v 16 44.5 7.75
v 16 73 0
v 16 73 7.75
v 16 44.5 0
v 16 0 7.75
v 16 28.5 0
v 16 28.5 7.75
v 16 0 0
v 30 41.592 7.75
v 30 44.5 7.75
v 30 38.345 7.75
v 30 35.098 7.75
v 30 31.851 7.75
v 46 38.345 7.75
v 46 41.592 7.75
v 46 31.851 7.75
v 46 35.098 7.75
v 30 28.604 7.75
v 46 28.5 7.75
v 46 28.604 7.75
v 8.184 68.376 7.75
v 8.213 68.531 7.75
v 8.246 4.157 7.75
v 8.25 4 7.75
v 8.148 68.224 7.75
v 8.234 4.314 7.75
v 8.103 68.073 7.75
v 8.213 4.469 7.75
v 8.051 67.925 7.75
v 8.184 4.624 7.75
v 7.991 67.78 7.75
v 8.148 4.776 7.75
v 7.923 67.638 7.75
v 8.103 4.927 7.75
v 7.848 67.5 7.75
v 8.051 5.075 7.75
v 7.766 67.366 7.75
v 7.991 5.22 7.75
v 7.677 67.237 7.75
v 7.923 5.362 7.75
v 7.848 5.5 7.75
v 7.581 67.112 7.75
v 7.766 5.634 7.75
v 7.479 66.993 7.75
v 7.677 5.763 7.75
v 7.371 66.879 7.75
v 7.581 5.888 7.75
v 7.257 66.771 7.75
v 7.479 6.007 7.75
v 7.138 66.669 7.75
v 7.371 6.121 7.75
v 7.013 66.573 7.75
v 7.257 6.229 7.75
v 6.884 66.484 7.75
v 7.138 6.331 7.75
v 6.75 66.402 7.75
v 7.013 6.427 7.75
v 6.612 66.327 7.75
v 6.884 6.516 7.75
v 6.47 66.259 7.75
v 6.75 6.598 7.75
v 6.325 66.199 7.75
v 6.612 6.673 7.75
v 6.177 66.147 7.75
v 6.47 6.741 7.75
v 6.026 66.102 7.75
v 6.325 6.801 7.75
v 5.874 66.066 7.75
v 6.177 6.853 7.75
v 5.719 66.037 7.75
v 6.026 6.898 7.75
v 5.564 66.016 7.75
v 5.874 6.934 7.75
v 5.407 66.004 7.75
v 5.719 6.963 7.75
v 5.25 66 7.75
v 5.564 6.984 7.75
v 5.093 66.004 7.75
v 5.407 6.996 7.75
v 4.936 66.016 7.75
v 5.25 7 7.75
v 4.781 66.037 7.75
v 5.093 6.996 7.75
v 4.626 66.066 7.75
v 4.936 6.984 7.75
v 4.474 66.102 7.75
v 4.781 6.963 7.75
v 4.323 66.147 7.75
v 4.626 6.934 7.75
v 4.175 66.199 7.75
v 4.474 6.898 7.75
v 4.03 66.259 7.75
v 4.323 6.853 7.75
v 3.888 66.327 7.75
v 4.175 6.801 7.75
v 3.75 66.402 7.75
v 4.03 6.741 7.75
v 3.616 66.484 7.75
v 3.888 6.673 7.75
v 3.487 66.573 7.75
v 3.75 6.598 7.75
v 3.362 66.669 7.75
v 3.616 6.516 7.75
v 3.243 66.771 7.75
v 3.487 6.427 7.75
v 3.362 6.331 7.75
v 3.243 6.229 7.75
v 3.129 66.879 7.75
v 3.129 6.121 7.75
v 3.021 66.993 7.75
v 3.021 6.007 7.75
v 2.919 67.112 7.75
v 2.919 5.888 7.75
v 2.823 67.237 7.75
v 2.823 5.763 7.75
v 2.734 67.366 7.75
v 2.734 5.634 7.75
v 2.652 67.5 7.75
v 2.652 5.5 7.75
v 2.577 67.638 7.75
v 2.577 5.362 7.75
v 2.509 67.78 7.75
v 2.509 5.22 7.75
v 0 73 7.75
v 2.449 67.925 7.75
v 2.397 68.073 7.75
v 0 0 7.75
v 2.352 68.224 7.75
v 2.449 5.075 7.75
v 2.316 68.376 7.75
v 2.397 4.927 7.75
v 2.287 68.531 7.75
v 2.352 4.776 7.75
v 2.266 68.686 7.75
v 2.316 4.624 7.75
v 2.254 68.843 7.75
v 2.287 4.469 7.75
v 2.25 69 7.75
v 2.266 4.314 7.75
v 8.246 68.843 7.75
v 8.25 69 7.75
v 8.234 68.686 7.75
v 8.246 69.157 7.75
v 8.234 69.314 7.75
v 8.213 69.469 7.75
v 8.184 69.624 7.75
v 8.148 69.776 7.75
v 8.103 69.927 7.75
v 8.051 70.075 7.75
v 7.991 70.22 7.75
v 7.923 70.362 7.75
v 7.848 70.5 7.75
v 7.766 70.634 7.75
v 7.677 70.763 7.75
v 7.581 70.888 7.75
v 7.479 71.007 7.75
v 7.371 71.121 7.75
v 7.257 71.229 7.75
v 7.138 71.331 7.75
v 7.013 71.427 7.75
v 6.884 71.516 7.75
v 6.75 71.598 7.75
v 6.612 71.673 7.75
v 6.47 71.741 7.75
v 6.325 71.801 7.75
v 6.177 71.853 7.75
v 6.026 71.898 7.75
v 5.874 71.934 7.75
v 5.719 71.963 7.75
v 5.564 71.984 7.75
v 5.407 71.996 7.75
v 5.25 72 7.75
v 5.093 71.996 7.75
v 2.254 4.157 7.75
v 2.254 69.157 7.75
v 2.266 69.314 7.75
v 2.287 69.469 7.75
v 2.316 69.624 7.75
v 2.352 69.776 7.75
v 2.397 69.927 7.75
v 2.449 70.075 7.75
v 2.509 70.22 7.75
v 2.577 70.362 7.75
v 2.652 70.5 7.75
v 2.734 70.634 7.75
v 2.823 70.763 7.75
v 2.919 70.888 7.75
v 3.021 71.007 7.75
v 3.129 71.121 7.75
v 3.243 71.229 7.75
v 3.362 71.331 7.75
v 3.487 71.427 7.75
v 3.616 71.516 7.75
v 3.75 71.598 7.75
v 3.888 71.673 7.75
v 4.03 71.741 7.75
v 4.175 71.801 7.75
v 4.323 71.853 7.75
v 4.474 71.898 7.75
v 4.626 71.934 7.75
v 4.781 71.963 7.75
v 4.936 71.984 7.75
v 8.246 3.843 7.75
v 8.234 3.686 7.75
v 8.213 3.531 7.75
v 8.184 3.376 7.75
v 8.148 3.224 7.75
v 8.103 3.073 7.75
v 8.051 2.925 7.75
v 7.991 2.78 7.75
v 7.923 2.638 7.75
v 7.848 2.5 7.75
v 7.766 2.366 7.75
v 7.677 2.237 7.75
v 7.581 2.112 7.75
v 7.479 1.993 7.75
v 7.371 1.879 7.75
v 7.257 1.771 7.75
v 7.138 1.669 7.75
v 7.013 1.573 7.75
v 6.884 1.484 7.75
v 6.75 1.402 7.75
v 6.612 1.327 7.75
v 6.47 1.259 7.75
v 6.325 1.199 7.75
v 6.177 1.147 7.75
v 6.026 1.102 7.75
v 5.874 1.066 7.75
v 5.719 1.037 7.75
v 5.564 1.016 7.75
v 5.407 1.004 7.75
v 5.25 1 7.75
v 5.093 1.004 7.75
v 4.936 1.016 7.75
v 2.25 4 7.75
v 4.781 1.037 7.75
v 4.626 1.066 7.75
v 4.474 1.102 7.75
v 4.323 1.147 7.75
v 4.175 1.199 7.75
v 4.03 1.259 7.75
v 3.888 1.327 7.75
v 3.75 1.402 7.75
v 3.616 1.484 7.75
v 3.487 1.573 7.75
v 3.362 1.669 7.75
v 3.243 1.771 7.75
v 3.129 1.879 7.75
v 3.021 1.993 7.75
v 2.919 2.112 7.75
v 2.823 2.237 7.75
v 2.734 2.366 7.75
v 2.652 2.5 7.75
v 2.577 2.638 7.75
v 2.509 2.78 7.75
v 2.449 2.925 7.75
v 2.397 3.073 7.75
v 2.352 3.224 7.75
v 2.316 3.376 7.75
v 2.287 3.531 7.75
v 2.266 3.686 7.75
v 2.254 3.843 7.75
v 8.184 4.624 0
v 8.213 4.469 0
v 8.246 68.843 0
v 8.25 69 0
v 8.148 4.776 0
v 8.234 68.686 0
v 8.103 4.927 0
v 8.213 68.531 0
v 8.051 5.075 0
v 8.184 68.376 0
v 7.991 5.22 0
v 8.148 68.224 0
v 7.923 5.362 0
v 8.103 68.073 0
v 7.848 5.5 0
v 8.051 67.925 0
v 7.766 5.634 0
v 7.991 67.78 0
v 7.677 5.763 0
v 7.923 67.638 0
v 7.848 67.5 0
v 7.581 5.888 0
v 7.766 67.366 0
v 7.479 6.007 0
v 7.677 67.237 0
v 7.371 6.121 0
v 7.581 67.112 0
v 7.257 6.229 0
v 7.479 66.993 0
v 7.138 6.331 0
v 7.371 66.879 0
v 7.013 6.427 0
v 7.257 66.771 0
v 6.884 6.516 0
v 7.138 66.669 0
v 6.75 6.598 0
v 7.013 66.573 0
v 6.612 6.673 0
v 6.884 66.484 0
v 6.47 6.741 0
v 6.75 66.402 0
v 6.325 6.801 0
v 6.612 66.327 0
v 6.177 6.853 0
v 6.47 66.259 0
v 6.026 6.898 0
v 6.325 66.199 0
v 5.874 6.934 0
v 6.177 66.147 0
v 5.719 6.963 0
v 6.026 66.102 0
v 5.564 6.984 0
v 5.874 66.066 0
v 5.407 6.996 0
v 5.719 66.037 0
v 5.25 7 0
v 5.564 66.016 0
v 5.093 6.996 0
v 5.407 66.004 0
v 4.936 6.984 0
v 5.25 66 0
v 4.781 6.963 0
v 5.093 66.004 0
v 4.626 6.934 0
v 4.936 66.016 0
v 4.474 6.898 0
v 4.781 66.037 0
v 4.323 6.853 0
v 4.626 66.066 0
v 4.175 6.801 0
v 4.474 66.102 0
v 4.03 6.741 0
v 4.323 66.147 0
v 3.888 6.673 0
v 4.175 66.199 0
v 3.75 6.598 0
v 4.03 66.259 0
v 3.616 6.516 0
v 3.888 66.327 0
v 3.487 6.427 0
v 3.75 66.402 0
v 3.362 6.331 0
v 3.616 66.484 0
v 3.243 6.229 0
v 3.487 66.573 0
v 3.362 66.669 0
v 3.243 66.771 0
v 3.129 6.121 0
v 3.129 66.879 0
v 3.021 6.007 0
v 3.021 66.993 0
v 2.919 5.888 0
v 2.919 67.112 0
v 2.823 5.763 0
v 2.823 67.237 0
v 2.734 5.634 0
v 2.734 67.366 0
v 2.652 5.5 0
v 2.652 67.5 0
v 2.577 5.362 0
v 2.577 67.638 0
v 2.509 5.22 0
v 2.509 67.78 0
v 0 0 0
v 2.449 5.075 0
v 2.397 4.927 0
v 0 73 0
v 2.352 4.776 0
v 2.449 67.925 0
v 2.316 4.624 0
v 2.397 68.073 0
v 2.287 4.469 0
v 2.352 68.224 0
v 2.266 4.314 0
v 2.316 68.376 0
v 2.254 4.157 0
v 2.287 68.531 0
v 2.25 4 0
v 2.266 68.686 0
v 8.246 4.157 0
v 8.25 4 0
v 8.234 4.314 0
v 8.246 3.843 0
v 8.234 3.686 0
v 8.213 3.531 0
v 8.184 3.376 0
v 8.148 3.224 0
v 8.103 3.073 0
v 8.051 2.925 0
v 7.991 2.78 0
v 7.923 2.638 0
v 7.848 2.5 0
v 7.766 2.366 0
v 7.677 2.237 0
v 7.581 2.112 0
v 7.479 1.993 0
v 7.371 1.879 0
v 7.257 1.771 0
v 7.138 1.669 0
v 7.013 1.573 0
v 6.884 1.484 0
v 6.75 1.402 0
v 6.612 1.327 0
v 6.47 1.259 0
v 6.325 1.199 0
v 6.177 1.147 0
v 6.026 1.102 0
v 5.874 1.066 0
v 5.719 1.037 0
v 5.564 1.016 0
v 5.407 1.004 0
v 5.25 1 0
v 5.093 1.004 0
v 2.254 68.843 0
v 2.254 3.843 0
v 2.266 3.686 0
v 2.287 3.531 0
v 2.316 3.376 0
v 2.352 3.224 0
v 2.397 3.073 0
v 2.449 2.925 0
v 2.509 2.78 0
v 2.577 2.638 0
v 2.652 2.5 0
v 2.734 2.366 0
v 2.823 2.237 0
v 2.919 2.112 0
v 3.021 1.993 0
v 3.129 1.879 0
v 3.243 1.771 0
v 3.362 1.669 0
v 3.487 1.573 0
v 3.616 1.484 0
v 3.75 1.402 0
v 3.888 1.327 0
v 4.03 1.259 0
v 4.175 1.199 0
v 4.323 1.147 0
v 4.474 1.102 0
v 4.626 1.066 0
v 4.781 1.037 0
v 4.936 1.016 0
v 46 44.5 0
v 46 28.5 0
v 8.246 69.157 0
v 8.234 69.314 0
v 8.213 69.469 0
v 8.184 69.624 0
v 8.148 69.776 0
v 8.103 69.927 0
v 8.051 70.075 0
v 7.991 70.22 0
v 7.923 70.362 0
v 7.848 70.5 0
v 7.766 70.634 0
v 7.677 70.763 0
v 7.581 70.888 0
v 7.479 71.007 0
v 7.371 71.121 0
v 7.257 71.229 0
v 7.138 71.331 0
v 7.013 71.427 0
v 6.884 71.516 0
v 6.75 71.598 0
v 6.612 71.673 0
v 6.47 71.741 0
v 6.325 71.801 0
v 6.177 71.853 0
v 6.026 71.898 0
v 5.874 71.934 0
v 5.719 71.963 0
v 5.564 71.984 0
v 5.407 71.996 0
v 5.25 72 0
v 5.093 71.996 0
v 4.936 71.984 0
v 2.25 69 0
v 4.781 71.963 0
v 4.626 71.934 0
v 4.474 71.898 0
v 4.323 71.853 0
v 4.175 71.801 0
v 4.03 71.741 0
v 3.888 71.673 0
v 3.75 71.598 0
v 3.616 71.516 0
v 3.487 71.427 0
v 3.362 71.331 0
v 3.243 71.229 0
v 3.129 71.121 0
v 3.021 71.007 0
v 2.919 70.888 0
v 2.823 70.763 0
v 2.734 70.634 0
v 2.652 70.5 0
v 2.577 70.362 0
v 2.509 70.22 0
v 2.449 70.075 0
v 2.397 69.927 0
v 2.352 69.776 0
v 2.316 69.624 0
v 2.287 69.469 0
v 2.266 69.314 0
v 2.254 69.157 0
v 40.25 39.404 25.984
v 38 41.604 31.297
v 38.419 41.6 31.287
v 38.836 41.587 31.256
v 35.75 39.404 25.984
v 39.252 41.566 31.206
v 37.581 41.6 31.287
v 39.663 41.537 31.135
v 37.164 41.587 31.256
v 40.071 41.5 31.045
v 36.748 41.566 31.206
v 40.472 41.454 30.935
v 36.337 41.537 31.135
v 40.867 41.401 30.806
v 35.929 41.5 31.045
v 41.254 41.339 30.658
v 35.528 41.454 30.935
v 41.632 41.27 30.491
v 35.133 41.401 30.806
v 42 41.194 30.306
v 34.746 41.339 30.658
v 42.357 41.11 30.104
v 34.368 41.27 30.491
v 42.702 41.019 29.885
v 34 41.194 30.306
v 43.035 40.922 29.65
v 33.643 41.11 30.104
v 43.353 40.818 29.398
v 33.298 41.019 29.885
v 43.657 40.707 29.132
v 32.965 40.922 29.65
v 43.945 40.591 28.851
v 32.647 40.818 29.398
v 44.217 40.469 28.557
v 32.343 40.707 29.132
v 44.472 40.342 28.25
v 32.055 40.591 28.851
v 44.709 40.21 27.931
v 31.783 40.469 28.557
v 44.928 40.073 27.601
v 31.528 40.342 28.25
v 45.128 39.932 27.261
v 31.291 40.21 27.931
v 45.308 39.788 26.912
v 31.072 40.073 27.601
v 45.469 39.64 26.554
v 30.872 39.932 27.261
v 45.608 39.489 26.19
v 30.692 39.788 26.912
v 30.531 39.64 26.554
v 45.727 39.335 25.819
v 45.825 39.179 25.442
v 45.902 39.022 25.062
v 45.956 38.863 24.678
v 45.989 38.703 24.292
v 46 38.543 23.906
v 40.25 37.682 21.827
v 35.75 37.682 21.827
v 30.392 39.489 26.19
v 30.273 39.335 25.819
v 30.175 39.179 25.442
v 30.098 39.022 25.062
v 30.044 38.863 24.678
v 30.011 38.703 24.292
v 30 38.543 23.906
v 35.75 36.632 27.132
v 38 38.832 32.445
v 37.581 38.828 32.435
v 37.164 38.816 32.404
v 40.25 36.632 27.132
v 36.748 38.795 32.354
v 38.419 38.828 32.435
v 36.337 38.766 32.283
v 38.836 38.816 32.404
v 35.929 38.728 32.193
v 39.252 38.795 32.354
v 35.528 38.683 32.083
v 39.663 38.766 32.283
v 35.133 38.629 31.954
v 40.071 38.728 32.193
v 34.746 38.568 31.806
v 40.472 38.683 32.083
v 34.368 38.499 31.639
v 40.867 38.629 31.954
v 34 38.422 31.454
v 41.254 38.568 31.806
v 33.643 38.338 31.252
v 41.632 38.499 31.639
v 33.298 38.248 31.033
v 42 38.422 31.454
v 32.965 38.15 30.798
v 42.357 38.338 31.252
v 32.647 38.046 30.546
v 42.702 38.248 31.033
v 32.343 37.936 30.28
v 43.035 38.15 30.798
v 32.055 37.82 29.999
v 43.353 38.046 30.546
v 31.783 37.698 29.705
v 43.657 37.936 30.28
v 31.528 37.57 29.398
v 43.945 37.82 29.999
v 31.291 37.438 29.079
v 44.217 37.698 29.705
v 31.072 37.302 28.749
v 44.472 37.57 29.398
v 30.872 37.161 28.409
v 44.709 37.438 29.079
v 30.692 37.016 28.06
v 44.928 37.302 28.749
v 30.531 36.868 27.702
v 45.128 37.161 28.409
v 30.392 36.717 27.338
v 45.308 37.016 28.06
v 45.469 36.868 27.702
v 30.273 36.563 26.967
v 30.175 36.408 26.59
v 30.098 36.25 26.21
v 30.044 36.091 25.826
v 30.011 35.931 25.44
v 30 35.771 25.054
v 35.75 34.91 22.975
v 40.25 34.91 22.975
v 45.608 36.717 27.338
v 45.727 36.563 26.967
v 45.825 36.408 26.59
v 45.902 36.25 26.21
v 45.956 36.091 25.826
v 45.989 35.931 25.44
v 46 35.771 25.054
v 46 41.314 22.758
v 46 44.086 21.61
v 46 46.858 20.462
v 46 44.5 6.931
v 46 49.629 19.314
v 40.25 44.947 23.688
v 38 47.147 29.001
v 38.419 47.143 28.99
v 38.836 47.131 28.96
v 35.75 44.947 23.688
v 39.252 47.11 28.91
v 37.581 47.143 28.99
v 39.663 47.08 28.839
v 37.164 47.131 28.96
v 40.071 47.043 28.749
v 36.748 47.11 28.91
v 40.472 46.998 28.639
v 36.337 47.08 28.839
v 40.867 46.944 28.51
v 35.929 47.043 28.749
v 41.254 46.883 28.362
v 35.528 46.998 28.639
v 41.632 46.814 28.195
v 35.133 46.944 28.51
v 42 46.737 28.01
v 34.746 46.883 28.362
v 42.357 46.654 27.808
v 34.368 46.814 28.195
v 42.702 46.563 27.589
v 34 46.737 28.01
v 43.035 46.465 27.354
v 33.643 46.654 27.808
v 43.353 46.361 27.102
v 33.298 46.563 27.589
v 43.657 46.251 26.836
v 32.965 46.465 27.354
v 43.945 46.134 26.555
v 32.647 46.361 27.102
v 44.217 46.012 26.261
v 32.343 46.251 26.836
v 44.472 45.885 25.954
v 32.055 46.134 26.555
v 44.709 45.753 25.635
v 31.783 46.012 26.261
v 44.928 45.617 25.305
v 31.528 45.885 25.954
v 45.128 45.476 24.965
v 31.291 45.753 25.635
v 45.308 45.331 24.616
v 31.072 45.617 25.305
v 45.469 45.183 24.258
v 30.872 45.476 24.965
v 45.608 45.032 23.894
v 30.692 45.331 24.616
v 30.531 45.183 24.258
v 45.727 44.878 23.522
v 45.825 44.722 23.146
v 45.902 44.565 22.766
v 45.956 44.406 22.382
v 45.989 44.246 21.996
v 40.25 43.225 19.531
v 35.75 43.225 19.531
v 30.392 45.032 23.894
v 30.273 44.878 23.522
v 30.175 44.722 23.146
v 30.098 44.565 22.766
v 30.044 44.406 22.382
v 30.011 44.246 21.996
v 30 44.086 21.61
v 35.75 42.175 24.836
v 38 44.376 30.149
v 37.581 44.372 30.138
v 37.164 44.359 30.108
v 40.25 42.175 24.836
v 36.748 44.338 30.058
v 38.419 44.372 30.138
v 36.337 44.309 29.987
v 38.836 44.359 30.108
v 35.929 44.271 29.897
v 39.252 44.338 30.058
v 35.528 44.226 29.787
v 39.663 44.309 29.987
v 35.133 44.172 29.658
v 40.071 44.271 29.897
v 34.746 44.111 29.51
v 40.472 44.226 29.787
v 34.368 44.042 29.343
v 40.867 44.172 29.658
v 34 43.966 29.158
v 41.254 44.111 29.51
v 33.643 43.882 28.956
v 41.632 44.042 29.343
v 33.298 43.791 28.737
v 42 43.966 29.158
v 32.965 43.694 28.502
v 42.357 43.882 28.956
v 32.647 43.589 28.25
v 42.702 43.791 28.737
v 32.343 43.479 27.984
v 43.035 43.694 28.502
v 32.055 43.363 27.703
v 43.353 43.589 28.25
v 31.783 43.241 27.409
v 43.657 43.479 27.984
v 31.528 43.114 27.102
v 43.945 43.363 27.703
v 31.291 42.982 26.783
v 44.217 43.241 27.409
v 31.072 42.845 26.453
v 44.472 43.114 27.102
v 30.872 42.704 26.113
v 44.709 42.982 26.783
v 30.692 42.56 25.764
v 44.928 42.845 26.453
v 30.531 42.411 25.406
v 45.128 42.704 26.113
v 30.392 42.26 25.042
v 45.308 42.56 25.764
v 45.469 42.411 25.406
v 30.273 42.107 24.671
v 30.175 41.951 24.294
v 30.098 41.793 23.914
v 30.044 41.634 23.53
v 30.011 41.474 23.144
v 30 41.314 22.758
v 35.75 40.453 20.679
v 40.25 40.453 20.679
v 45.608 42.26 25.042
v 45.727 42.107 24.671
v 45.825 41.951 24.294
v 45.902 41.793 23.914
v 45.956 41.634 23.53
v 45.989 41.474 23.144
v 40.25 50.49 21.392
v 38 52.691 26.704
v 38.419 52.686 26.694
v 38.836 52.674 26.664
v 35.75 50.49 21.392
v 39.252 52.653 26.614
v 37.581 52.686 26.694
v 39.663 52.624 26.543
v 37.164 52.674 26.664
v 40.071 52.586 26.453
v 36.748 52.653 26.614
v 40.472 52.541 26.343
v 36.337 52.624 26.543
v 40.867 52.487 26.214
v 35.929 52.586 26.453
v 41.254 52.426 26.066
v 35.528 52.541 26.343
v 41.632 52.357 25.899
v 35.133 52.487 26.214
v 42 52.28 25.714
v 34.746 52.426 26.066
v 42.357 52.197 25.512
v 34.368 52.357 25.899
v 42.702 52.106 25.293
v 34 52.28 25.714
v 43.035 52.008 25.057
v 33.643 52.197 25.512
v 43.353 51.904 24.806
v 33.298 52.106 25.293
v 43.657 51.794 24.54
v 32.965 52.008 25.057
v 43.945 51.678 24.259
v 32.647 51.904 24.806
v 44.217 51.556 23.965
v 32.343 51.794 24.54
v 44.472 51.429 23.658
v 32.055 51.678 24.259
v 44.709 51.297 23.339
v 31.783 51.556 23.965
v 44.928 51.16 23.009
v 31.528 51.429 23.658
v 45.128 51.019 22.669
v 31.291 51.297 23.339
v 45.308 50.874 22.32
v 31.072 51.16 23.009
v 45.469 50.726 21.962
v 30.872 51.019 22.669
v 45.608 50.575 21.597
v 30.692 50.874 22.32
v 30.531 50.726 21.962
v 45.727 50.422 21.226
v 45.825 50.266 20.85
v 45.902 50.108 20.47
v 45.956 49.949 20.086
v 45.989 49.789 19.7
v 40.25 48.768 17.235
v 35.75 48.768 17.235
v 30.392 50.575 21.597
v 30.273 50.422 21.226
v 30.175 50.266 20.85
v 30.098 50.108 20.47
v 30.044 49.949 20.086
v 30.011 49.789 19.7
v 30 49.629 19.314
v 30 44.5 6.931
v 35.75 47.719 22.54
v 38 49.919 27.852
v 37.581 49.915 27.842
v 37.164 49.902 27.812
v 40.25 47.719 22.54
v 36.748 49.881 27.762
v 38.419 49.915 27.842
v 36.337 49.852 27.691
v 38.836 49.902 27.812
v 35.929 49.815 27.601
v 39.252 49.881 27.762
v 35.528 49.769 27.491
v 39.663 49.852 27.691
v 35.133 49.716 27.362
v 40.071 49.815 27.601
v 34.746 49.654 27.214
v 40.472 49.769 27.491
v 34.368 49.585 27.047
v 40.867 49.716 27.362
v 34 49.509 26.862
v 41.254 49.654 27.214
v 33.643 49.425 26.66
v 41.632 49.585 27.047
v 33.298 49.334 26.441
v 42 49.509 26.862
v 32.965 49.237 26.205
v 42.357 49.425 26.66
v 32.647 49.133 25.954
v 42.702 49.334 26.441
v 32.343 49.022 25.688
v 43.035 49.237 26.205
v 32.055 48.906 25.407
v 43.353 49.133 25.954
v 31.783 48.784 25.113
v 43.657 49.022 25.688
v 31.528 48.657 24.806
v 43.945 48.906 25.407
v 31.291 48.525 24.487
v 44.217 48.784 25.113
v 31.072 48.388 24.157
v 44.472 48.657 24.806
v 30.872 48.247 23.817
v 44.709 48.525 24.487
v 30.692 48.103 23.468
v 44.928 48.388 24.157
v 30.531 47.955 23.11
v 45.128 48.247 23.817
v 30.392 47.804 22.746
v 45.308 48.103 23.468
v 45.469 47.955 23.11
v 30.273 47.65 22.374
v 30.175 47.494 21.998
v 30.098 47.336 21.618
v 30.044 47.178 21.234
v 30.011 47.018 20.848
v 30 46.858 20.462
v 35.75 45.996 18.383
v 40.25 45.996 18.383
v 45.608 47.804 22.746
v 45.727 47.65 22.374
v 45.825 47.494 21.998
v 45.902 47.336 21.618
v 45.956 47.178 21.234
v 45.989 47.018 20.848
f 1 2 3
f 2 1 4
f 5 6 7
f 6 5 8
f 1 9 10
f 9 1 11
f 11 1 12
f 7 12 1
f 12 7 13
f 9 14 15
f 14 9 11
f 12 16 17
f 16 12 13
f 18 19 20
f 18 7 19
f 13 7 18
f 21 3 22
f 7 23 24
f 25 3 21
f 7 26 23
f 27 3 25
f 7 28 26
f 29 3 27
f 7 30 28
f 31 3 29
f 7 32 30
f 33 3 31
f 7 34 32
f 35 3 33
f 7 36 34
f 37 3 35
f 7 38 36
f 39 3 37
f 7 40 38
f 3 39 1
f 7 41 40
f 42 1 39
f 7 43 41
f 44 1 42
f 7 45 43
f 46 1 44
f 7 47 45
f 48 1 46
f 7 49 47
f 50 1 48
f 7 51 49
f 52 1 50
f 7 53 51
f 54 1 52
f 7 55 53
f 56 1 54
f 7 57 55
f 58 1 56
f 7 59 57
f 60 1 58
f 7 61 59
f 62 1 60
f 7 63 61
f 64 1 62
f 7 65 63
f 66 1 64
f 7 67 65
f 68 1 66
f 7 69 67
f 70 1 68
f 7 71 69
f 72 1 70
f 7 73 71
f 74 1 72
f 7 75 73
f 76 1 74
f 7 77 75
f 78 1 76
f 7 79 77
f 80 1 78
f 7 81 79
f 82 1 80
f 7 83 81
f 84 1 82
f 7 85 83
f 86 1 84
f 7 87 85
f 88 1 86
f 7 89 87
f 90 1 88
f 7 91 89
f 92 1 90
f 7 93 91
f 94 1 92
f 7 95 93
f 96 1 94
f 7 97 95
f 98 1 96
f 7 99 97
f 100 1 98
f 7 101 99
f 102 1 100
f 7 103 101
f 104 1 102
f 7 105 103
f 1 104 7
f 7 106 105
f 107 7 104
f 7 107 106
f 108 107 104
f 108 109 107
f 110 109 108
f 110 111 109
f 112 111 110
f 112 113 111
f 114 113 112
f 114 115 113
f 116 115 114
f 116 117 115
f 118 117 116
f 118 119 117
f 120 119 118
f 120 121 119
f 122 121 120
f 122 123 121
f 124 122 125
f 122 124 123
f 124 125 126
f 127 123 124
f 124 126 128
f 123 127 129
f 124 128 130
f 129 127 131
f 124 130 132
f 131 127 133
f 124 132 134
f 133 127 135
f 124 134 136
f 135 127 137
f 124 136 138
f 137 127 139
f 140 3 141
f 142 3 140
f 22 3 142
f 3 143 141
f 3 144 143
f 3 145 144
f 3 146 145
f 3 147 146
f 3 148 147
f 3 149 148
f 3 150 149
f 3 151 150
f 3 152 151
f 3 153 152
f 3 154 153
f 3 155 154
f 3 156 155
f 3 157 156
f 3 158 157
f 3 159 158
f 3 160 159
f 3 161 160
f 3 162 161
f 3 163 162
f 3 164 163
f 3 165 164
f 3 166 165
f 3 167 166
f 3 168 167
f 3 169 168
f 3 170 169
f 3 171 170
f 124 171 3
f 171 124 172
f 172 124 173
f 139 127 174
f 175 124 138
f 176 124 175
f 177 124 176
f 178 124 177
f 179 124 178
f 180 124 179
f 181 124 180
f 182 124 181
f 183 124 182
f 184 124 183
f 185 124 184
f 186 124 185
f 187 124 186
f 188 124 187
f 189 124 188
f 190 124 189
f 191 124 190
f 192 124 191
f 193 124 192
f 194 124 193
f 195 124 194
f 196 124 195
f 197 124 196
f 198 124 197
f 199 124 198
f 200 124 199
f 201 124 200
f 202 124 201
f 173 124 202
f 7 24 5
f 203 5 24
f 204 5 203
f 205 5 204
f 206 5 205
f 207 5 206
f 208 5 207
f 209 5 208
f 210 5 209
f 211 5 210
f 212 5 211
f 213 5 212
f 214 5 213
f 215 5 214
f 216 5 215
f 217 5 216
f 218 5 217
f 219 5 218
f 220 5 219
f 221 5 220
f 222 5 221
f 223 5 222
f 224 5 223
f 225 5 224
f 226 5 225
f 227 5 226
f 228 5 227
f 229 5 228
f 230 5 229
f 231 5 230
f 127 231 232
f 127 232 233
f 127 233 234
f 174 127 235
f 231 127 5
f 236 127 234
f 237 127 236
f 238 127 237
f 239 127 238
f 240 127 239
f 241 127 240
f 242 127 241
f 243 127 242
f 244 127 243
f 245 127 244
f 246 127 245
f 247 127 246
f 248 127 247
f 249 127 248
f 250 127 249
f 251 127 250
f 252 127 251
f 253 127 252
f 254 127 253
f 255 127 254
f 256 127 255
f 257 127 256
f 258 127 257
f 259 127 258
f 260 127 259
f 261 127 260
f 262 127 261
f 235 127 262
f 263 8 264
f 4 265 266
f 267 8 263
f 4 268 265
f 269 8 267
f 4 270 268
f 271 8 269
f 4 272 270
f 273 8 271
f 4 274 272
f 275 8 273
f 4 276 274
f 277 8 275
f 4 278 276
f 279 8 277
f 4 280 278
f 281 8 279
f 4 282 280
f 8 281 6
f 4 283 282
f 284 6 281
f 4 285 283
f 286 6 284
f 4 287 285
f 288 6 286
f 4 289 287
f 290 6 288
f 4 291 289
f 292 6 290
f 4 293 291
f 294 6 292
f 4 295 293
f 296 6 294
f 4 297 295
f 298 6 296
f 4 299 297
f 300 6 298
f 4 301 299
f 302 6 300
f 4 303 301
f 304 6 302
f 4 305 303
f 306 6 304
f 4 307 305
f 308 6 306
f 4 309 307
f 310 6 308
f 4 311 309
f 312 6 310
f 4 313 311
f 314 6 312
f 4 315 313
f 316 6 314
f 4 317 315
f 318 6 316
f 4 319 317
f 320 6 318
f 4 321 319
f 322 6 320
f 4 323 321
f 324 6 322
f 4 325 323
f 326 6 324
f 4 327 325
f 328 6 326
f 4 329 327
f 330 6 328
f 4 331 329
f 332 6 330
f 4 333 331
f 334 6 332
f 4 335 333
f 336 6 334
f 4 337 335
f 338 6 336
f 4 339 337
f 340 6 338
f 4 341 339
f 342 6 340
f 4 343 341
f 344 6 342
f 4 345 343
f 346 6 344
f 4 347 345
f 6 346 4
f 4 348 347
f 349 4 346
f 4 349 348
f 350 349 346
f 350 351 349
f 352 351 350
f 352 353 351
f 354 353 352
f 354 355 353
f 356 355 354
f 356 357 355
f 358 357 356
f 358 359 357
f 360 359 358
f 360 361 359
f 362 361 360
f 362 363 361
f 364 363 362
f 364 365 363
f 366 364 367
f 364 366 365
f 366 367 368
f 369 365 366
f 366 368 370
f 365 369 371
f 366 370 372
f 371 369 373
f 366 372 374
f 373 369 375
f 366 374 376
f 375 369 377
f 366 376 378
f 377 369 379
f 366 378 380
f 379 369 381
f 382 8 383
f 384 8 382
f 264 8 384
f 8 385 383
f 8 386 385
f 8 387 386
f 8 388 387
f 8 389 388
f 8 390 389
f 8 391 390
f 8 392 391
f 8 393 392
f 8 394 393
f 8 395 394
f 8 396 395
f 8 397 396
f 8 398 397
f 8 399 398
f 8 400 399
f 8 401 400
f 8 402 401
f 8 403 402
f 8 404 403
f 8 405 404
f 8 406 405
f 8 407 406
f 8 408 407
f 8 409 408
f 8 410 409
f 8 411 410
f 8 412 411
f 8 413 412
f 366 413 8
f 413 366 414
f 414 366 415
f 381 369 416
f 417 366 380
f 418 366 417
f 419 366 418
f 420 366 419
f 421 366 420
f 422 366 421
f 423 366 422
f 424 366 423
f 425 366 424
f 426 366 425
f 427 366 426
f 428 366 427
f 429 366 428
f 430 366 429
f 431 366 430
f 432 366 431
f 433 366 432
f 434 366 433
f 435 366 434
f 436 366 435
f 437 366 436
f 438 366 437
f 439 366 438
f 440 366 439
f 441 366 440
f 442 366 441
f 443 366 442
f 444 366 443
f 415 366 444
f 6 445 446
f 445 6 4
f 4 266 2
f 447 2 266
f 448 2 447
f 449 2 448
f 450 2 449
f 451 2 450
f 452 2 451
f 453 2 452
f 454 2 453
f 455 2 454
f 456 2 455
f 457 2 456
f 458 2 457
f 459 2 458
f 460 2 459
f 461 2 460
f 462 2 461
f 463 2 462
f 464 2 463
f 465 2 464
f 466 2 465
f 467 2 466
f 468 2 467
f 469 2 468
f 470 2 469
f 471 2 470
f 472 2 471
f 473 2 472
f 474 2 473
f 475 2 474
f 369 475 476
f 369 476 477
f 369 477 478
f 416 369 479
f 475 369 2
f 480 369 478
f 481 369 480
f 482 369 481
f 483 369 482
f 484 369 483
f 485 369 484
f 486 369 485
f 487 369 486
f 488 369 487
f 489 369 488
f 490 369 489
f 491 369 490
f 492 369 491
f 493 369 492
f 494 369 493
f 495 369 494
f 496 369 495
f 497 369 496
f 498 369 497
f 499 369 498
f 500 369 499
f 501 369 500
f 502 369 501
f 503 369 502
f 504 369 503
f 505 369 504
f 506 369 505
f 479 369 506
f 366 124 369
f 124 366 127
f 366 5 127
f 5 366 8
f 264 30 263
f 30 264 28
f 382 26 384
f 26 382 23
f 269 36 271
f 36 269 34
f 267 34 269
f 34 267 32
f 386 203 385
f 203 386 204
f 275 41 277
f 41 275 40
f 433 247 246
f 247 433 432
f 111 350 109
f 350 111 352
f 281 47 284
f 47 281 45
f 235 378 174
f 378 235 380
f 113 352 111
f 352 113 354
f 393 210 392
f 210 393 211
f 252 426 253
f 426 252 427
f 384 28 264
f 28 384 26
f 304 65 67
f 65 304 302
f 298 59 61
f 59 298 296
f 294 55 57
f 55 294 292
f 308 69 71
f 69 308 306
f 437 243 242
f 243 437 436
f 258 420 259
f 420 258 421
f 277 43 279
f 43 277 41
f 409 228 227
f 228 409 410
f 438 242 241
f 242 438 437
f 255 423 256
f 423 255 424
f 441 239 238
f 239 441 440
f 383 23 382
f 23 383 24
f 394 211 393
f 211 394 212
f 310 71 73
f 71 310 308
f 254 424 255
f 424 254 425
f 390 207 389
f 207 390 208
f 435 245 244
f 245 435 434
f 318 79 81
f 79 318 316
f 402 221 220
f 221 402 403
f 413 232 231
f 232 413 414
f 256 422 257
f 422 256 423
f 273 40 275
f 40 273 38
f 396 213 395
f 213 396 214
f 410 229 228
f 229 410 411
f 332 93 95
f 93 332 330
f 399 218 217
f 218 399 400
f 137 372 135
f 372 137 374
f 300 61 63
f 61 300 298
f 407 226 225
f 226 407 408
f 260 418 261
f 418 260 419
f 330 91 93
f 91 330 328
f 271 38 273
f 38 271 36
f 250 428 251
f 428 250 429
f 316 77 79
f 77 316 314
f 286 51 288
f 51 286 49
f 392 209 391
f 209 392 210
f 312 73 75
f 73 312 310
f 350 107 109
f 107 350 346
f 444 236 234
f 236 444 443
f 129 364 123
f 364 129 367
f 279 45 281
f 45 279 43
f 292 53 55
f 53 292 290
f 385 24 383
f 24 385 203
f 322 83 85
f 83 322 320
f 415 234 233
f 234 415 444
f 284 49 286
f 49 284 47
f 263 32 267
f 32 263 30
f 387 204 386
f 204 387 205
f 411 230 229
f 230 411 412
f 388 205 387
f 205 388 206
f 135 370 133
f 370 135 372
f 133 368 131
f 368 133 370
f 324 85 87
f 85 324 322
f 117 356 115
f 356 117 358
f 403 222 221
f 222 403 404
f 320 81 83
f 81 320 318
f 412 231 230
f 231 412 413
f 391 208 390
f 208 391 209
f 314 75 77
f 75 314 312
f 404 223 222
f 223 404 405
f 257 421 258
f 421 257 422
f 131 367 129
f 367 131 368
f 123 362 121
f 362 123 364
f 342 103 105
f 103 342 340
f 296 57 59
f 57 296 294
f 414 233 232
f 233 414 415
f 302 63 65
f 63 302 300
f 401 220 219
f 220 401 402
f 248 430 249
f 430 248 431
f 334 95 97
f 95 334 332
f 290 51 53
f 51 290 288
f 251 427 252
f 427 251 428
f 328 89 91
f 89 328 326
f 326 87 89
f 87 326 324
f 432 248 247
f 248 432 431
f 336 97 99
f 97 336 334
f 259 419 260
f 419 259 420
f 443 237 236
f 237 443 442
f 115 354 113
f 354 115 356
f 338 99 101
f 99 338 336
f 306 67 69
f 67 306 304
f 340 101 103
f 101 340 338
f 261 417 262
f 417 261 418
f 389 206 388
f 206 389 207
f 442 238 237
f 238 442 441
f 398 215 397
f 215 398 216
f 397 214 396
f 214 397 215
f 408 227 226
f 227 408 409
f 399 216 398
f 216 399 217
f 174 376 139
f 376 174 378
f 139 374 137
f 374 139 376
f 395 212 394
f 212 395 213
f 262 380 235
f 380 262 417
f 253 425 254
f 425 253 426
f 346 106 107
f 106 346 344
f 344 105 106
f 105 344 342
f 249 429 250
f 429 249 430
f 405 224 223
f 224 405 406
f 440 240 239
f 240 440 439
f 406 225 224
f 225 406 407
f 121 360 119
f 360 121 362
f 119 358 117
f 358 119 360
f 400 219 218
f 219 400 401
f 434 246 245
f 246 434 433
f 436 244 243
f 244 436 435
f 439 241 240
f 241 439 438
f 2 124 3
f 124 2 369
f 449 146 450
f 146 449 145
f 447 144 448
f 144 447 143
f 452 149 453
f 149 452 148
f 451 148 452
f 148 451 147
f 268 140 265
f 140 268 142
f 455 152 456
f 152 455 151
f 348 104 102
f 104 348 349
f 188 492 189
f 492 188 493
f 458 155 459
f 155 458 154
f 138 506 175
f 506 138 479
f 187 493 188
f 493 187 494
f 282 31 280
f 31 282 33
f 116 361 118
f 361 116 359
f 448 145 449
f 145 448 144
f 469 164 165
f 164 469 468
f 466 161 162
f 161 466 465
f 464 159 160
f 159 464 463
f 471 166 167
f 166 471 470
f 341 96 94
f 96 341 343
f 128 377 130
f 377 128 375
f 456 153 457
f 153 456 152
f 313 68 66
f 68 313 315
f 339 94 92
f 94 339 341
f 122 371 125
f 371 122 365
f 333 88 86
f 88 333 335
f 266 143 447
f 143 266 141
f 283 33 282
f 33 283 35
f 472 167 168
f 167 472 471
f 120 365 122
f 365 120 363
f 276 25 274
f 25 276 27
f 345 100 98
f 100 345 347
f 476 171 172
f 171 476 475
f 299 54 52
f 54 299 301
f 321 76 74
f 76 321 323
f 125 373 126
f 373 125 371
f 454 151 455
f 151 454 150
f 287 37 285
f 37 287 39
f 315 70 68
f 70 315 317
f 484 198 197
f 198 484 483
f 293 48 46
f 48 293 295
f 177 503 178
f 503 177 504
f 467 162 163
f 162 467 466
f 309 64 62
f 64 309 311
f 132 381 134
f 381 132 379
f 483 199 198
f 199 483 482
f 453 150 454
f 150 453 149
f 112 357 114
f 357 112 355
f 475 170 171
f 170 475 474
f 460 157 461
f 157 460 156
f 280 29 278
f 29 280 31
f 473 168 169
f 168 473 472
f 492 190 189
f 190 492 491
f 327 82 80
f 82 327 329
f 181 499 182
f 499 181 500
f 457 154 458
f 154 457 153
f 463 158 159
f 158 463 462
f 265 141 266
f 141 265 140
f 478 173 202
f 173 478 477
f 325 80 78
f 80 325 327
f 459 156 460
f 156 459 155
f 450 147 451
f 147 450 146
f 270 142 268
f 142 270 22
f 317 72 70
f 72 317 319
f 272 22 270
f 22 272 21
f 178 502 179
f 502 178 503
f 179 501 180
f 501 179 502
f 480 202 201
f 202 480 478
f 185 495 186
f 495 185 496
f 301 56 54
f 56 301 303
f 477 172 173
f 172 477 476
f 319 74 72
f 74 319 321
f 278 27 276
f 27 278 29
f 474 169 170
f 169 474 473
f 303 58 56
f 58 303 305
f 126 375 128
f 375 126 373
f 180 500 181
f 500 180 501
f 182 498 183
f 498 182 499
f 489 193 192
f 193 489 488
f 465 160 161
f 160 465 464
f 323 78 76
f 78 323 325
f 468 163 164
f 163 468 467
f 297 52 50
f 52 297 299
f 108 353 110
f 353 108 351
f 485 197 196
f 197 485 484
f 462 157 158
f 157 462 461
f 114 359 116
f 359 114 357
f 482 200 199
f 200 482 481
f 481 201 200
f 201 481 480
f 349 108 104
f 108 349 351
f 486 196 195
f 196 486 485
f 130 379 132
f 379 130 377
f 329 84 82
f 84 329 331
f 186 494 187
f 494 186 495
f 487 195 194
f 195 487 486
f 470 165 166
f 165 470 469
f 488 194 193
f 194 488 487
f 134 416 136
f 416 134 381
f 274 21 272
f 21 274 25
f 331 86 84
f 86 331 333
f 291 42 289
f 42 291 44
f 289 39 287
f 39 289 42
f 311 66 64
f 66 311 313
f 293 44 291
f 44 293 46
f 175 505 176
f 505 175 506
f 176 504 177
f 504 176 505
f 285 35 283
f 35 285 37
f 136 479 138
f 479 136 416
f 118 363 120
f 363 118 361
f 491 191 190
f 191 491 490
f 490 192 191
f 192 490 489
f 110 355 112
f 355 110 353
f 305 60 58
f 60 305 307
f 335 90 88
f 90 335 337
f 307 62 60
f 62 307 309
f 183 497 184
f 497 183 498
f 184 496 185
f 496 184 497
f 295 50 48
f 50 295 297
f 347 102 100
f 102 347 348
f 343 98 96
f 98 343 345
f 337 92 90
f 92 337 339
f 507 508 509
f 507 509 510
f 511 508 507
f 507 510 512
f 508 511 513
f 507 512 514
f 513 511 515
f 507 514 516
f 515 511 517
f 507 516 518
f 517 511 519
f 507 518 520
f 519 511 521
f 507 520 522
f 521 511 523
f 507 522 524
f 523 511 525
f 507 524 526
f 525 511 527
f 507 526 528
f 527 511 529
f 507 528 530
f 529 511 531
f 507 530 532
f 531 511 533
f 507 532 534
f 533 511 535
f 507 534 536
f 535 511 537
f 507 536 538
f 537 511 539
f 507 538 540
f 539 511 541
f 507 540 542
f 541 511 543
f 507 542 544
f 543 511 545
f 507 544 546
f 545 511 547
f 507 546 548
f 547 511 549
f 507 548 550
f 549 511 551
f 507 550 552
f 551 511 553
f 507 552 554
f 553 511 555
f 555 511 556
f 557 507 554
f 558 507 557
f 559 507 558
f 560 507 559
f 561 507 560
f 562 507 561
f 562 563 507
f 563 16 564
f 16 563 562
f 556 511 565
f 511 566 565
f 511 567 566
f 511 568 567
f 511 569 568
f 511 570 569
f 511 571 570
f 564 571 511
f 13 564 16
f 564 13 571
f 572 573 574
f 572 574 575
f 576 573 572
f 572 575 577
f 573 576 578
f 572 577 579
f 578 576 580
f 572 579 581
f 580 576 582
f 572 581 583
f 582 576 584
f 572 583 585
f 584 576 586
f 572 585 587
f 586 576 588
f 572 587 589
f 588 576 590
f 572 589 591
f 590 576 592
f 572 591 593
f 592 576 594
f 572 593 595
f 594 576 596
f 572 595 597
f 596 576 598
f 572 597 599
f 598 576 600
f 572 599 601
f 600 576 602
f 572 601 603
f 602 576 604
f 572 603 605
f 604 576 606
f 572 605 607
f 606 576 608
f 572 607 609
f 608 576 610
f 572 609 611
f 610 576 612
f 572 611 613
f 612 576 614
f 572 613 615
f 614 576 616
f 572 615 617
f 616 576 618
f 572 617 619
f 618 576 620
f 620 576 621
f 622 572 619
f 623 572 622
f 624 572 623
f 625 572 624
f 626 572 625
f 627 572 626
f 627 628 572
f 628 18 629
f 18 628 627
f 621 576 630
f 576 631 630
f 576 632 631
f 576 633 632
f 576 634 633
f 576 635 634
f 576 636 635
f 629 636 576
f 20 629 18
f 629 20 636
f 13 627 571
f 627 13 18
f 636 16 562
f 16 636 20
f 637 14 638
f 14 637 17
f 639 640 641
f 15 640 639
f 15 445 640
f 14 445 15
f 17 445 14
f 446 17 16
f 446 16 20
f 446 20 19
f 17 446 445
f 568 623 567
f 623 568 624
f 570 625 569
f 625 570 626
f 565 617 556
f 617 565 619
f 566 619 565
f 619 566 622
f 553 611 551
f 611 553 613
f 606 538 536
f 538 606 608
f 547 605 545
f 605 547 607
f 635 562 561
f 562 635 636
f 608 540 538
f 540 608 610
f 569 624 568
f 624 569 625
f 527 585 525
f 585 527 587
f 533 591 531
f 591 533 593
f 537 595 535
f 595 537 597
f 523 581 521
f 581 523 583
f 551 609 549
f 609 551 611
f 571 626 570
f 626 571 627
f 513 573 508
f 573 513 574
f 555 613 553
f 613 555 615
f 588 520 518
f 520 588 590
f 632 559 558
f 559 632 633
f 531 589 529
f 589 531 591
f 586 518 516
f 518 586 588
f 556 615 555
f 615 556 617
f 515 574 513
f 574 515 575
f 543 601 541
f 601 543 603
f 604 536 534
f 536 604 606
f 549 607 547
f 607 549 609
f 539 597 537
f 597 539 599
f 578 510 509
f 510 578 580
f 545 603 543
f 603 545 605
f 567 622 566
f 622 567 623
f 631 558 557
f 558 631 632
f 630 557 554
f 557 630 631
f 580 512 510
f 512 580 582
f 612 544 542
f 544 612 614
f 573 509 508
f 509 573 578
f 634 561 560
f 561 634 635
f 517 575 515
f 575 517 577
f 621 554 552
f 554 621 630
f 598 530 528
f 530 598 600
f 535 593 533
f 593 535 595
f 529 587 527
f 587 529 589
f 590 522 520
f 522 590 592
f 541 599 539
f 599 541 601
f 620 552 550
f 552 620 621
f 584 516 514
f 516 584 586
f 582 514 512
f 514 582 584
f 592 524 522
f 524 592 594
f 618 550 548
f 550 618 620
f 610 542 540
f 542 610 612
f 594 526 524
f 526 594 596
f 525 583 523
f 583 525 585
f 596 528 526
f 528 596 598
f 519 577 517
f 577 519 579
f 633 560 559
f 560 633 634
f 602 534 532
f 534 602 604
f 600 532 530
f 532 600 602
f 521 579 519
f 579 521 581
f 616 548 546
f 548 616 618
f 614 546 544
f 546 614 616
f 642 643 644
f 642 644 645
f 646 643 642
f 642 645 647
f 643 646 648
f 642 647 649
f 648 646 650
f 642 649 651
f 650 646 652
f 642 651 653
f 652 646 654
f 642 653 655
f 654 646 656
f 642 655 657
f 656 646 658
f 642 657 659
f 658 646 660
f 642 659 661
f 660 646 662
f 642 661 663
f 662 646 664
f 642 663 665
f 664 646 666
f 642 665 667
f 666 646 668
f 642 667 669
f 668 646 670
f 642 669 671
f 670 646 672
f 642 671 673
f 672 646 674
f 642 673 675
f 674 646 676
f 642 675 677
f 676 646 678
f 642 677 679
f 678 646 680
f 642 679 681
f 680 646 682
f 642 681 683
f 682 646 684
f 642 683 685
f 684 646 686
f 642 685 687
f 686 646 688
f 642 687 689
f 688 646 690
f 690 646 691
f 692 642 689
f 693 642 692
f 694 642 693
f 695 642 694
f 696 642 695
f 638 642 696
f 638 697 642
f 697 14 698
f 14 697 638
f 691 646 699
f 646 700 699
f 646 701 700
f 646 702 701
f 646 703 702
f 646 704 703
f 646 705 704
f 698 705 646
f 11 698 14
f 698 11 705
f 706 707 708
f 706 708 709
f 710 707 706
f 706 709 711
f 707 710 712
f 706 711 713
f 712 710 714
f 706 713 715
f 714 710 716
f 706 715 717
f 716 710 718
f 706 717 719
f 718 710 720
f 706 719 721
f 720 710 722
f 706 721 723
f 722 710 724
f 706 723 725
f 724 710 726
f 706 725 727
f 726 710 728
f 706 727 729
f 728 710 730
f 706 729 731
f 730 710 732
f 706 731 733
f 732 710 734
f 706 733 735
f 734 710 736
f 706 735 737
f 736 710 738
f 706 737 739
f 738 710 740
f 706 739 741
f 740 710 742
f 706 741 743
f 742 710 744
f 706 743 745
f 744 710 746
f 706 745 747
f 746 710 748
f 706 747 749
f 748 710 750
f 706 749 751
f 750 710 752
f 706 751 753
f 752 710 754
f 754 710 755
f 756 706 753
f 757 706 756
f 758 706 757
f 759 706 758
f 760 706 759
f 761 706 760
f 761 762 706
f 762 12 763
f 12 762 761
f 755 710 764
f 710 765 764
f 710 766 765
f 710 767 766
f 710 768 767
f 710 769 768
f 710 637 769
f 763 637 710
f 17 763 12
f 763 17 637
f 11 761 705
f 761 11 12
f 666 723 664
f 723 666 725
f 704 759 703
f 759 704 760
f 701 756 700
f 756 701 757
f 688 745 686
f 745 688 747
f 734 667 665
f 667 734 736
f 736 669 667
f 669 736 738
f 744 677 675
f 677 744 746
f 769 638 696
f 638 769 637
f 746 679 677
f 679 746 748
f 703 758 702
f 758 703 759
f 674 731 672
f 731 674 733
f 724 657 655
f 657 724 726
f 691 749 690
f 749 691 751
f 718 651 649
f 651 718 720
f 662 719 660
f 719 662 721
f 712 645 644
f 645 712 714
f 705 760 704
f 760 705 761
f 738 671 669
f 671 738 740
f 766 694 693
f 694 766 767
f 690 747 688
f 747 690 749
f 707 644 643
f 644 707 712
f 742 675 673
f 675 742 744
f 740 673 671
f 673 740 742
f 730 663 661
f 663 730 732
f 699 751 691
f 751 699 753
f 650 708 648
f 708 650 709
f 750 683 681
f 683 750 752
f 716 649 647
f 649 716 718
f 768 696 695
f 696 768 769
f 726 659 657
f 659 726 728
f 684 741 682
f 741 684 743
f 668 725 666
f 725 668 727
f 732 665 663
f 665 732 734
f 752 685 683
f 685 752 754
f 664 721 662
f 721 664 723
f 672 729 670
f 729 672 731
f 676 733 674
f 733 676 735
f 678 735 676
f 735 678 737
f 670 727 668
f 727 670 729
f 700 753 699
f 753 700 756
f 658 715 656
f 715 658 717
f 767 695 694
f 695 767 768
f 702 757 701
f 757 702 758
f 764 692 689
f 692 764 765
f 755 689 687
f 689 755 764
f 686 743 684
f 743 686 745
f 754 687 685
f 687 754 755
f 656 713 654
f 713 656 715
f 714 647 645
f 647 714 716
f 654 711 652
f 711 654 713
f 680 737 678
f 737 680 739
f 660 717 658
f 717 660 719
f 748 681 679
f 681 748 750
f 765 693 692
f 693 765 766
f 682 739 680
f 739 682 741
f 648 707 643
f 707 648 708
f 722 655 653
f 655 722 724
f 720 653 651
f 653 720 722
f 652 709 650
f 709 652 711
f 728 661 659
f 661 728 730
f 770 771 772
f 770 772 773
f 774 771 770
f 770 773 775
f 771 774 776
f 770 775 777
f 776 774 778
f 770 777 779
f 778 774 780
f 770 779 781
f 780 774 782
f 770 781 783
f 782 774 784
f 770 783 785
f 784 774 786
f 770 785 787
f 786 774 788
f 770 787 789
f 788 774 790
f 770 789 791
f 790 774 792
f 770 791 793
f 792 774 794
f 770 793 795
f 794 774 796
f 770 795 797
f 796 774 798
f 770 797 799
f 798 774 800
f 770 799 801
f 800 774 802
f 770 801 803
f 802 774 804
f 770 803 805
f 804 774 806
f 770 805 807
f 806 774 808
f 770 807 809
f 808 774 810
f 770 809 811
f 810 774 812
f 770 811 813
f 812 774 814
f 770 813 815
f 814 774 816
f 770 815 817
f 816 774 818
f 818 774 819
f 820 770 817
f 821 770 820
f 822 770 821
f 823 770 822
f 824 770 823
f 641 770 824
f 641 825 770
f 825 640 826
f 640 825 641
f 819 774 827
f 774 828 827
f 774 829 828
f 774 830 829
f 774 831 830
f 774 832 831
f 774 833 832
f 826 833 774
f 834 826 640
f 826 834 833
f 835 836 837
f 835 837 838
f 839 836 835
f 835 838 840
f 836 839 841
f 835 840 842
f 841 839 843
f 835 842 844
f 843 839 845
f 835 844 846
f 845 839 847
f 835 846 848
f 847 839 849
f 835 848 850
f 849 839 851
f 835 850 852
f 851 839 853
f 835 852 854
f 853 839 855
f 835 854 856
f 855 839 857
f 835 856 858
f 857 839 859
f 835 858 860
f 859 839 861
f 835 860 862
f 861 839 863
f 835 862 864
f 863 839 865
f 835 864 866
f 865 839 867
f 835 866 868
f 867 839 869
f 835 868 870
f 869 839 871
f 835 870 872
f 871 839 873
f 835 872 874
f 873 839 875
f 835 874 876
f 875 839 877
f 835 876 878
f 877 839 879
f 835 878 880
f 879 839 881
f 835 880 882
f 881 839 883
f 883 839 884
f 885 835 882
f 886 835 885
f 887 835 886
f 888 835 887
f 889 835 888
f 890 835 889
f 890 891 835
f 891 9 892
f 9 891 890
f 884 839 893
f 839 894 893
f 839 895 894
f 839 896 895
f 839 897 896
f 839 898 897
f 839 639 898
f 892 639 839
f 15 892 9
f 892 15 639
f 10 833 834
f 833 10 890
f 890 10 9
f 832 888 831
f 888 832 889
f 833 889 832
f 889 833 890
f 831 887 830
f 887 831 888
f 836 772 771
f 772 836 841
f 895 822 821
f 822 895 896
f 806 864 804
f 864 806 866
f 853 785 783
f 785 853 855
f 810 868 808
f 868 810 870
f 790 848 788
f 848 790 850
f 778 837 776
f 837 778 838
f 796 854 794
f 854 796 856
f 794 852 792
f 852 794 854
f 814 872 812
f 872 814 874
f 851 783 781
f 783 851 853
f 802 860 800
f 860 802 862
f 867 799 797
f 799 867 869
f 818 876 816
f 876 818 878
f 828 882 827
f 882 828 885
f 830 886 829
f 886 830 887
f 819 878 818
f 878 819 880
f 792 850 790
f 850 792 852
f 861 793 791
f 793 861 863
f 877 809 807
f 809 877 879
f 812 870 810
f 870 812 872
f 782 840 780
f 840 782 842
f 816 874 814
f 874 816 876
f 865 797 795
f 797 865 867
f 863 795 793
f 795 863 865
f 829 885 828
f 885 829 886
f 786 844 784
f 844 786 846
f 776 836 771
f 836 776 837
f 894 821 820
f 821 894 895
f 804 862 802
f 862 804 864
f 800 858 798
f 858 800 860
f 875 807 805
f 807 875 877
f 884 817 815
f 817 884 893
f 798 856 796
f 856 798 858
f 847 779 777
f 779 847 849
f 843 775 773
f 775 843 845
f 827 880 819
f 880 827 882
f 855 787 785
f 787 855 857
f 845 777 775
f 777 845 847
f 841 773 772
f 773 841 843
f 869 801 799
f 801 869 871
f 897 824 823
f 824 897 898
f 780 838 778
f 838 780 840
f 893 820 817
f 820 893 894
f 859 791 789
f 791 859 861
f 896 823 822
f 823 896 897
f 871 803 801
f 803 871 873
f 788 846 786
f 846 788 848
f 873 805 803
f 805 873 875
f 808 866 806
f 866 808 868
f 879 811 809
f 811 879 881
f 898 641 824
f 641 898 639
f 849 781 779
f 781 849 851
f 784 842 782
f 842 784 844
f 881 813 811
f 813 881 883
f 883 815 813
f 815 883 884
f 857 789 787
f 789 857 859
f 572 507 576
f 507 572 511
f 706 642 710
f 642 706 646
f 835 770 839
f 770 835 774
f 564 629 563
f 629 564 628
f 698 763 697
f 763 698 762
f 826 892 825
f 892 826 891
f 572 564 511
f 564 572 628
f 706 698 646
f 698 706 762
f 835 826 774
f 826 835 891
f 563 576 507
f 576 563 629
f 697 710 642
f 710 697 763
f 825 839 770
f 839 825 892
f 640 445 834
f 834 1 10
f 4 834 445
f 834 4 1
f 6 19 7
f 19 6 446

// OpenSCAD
/*
BSD 2-Clause License

Copyright (c) 2020, Ewald Stangl
All rights reserved.

Redistribution and use in source and binary forms, with or without
modification, are permitted provided that the following conditions are met:

1. Redistributions of source code must retain the above copyright notice, this
   list of conditions and the following disclaimer.

2. Redistributions in binary form must reproduce the above copyright notice,
   this list of conditions and the following disclaimer in the documentation
   and/or other materials provided with the distribution.

THIS SOFTWARE IS PROVIDED BY THE COPYRIGHT HOLDERS AND CONTRIBUTORS "AS IS"
AND ANY EXPRESS OR IMPLIED WARRANTIES, INCLUDING, BUT NOT LIMITED TO, THE
IMPLIED WARRANTIES OF MERCHANTABILITY AND FITNESS FOR A PARTICULAR PURPOSE ARE
DISCLAIMED. IN NO EVENT SHALL THE COPYRIGHT HOLDER OR CONTRIBUTORS BE LIABLE
FOR ANY DIRECT, INDIRECT, INCIDENTAL, SPECIAL, EXEMPLARY, OR CONSEQUENTIAL
DAMAGES (INCLUDING, BUT NOT LIMITED TO, PROCUREMENT OF SUBSTITUTE GOODS OR
SERVICES; LOSS OF USE, DATA, OR PROFITS; OR BUSINESS INTERRUPTION) HOWEVER
CAUSED AND ON ANY THEORY OF LIABILITY, WHETHER IN CONTRACT, STRICT LIABILITY,
OR TORT (INCLUDING NEGLIGENCE OR OTHERWISE) ARISING IN ANY WAY OUT OF THE USE
OF THIS SOFTWARE, EVEN IF ADVISED OF THE POSSIBILITY OF SUCH DAMAGE.
*/

translate([0, 0, 0]) {
    difference() {
        cube([16, 8, 7.75]);
        translate([5.25, 4, -1]) {
            cylinder(d = 6, h = 10, $fn = 120);
        }
    }
}

translate([0, 65, 0]) {
    difference() {
        cube([16, 8, 7.75]);
        translate([5.25, 4, -1]) {
            cylinder(d = 6, h = 10, $fn = 120);
        }
    }
}

translate([0, 8, 0]) {
    cube([16, 57, 7.75]);
}



translate([16, 28.5, 0]) {
    cube([30, 16, 7.75]);
}

translate([46, 28.5, 7.5]) {
    rotate([0, 22.5, 90]) {
        difference() {
            translate([0, 0, 0]) {
                translate([0, 0, 0]) {
                    translate([0, 0, 0]) {
                        cube([3, 16, 19]);
                        translate([0, 8, 19]) {
                            rotate([90, 0, 90]) {
                                cylinder(d = 16, h = 3, $fn = 120);
                            }
                        }
                    }  
                }
                
                translate([6, 0, 0]) {
                    cube([3, 16, 19]);
                    
                    translate([0, 8, 19]) {
                        rotate([90, 0, 90]) {
                            cylinder(d = 16, h = 3, $fn = 120);
                        }
                    }
                }
                
                translate([12, 0, 0]) {
                    cube([3, 16, 19]);
                    
                    translate([0, 8, 19]) {
                        rotate([90, 0, 90]) {
                            cylinder(d = 16, h = 3, $fn = 120);
                        }
                    }
                }
            }
            
            translate([-1, 5.75, 16.75]) {
                cube([20, 4.5, 4.5]);
            }
        }
    }
}
